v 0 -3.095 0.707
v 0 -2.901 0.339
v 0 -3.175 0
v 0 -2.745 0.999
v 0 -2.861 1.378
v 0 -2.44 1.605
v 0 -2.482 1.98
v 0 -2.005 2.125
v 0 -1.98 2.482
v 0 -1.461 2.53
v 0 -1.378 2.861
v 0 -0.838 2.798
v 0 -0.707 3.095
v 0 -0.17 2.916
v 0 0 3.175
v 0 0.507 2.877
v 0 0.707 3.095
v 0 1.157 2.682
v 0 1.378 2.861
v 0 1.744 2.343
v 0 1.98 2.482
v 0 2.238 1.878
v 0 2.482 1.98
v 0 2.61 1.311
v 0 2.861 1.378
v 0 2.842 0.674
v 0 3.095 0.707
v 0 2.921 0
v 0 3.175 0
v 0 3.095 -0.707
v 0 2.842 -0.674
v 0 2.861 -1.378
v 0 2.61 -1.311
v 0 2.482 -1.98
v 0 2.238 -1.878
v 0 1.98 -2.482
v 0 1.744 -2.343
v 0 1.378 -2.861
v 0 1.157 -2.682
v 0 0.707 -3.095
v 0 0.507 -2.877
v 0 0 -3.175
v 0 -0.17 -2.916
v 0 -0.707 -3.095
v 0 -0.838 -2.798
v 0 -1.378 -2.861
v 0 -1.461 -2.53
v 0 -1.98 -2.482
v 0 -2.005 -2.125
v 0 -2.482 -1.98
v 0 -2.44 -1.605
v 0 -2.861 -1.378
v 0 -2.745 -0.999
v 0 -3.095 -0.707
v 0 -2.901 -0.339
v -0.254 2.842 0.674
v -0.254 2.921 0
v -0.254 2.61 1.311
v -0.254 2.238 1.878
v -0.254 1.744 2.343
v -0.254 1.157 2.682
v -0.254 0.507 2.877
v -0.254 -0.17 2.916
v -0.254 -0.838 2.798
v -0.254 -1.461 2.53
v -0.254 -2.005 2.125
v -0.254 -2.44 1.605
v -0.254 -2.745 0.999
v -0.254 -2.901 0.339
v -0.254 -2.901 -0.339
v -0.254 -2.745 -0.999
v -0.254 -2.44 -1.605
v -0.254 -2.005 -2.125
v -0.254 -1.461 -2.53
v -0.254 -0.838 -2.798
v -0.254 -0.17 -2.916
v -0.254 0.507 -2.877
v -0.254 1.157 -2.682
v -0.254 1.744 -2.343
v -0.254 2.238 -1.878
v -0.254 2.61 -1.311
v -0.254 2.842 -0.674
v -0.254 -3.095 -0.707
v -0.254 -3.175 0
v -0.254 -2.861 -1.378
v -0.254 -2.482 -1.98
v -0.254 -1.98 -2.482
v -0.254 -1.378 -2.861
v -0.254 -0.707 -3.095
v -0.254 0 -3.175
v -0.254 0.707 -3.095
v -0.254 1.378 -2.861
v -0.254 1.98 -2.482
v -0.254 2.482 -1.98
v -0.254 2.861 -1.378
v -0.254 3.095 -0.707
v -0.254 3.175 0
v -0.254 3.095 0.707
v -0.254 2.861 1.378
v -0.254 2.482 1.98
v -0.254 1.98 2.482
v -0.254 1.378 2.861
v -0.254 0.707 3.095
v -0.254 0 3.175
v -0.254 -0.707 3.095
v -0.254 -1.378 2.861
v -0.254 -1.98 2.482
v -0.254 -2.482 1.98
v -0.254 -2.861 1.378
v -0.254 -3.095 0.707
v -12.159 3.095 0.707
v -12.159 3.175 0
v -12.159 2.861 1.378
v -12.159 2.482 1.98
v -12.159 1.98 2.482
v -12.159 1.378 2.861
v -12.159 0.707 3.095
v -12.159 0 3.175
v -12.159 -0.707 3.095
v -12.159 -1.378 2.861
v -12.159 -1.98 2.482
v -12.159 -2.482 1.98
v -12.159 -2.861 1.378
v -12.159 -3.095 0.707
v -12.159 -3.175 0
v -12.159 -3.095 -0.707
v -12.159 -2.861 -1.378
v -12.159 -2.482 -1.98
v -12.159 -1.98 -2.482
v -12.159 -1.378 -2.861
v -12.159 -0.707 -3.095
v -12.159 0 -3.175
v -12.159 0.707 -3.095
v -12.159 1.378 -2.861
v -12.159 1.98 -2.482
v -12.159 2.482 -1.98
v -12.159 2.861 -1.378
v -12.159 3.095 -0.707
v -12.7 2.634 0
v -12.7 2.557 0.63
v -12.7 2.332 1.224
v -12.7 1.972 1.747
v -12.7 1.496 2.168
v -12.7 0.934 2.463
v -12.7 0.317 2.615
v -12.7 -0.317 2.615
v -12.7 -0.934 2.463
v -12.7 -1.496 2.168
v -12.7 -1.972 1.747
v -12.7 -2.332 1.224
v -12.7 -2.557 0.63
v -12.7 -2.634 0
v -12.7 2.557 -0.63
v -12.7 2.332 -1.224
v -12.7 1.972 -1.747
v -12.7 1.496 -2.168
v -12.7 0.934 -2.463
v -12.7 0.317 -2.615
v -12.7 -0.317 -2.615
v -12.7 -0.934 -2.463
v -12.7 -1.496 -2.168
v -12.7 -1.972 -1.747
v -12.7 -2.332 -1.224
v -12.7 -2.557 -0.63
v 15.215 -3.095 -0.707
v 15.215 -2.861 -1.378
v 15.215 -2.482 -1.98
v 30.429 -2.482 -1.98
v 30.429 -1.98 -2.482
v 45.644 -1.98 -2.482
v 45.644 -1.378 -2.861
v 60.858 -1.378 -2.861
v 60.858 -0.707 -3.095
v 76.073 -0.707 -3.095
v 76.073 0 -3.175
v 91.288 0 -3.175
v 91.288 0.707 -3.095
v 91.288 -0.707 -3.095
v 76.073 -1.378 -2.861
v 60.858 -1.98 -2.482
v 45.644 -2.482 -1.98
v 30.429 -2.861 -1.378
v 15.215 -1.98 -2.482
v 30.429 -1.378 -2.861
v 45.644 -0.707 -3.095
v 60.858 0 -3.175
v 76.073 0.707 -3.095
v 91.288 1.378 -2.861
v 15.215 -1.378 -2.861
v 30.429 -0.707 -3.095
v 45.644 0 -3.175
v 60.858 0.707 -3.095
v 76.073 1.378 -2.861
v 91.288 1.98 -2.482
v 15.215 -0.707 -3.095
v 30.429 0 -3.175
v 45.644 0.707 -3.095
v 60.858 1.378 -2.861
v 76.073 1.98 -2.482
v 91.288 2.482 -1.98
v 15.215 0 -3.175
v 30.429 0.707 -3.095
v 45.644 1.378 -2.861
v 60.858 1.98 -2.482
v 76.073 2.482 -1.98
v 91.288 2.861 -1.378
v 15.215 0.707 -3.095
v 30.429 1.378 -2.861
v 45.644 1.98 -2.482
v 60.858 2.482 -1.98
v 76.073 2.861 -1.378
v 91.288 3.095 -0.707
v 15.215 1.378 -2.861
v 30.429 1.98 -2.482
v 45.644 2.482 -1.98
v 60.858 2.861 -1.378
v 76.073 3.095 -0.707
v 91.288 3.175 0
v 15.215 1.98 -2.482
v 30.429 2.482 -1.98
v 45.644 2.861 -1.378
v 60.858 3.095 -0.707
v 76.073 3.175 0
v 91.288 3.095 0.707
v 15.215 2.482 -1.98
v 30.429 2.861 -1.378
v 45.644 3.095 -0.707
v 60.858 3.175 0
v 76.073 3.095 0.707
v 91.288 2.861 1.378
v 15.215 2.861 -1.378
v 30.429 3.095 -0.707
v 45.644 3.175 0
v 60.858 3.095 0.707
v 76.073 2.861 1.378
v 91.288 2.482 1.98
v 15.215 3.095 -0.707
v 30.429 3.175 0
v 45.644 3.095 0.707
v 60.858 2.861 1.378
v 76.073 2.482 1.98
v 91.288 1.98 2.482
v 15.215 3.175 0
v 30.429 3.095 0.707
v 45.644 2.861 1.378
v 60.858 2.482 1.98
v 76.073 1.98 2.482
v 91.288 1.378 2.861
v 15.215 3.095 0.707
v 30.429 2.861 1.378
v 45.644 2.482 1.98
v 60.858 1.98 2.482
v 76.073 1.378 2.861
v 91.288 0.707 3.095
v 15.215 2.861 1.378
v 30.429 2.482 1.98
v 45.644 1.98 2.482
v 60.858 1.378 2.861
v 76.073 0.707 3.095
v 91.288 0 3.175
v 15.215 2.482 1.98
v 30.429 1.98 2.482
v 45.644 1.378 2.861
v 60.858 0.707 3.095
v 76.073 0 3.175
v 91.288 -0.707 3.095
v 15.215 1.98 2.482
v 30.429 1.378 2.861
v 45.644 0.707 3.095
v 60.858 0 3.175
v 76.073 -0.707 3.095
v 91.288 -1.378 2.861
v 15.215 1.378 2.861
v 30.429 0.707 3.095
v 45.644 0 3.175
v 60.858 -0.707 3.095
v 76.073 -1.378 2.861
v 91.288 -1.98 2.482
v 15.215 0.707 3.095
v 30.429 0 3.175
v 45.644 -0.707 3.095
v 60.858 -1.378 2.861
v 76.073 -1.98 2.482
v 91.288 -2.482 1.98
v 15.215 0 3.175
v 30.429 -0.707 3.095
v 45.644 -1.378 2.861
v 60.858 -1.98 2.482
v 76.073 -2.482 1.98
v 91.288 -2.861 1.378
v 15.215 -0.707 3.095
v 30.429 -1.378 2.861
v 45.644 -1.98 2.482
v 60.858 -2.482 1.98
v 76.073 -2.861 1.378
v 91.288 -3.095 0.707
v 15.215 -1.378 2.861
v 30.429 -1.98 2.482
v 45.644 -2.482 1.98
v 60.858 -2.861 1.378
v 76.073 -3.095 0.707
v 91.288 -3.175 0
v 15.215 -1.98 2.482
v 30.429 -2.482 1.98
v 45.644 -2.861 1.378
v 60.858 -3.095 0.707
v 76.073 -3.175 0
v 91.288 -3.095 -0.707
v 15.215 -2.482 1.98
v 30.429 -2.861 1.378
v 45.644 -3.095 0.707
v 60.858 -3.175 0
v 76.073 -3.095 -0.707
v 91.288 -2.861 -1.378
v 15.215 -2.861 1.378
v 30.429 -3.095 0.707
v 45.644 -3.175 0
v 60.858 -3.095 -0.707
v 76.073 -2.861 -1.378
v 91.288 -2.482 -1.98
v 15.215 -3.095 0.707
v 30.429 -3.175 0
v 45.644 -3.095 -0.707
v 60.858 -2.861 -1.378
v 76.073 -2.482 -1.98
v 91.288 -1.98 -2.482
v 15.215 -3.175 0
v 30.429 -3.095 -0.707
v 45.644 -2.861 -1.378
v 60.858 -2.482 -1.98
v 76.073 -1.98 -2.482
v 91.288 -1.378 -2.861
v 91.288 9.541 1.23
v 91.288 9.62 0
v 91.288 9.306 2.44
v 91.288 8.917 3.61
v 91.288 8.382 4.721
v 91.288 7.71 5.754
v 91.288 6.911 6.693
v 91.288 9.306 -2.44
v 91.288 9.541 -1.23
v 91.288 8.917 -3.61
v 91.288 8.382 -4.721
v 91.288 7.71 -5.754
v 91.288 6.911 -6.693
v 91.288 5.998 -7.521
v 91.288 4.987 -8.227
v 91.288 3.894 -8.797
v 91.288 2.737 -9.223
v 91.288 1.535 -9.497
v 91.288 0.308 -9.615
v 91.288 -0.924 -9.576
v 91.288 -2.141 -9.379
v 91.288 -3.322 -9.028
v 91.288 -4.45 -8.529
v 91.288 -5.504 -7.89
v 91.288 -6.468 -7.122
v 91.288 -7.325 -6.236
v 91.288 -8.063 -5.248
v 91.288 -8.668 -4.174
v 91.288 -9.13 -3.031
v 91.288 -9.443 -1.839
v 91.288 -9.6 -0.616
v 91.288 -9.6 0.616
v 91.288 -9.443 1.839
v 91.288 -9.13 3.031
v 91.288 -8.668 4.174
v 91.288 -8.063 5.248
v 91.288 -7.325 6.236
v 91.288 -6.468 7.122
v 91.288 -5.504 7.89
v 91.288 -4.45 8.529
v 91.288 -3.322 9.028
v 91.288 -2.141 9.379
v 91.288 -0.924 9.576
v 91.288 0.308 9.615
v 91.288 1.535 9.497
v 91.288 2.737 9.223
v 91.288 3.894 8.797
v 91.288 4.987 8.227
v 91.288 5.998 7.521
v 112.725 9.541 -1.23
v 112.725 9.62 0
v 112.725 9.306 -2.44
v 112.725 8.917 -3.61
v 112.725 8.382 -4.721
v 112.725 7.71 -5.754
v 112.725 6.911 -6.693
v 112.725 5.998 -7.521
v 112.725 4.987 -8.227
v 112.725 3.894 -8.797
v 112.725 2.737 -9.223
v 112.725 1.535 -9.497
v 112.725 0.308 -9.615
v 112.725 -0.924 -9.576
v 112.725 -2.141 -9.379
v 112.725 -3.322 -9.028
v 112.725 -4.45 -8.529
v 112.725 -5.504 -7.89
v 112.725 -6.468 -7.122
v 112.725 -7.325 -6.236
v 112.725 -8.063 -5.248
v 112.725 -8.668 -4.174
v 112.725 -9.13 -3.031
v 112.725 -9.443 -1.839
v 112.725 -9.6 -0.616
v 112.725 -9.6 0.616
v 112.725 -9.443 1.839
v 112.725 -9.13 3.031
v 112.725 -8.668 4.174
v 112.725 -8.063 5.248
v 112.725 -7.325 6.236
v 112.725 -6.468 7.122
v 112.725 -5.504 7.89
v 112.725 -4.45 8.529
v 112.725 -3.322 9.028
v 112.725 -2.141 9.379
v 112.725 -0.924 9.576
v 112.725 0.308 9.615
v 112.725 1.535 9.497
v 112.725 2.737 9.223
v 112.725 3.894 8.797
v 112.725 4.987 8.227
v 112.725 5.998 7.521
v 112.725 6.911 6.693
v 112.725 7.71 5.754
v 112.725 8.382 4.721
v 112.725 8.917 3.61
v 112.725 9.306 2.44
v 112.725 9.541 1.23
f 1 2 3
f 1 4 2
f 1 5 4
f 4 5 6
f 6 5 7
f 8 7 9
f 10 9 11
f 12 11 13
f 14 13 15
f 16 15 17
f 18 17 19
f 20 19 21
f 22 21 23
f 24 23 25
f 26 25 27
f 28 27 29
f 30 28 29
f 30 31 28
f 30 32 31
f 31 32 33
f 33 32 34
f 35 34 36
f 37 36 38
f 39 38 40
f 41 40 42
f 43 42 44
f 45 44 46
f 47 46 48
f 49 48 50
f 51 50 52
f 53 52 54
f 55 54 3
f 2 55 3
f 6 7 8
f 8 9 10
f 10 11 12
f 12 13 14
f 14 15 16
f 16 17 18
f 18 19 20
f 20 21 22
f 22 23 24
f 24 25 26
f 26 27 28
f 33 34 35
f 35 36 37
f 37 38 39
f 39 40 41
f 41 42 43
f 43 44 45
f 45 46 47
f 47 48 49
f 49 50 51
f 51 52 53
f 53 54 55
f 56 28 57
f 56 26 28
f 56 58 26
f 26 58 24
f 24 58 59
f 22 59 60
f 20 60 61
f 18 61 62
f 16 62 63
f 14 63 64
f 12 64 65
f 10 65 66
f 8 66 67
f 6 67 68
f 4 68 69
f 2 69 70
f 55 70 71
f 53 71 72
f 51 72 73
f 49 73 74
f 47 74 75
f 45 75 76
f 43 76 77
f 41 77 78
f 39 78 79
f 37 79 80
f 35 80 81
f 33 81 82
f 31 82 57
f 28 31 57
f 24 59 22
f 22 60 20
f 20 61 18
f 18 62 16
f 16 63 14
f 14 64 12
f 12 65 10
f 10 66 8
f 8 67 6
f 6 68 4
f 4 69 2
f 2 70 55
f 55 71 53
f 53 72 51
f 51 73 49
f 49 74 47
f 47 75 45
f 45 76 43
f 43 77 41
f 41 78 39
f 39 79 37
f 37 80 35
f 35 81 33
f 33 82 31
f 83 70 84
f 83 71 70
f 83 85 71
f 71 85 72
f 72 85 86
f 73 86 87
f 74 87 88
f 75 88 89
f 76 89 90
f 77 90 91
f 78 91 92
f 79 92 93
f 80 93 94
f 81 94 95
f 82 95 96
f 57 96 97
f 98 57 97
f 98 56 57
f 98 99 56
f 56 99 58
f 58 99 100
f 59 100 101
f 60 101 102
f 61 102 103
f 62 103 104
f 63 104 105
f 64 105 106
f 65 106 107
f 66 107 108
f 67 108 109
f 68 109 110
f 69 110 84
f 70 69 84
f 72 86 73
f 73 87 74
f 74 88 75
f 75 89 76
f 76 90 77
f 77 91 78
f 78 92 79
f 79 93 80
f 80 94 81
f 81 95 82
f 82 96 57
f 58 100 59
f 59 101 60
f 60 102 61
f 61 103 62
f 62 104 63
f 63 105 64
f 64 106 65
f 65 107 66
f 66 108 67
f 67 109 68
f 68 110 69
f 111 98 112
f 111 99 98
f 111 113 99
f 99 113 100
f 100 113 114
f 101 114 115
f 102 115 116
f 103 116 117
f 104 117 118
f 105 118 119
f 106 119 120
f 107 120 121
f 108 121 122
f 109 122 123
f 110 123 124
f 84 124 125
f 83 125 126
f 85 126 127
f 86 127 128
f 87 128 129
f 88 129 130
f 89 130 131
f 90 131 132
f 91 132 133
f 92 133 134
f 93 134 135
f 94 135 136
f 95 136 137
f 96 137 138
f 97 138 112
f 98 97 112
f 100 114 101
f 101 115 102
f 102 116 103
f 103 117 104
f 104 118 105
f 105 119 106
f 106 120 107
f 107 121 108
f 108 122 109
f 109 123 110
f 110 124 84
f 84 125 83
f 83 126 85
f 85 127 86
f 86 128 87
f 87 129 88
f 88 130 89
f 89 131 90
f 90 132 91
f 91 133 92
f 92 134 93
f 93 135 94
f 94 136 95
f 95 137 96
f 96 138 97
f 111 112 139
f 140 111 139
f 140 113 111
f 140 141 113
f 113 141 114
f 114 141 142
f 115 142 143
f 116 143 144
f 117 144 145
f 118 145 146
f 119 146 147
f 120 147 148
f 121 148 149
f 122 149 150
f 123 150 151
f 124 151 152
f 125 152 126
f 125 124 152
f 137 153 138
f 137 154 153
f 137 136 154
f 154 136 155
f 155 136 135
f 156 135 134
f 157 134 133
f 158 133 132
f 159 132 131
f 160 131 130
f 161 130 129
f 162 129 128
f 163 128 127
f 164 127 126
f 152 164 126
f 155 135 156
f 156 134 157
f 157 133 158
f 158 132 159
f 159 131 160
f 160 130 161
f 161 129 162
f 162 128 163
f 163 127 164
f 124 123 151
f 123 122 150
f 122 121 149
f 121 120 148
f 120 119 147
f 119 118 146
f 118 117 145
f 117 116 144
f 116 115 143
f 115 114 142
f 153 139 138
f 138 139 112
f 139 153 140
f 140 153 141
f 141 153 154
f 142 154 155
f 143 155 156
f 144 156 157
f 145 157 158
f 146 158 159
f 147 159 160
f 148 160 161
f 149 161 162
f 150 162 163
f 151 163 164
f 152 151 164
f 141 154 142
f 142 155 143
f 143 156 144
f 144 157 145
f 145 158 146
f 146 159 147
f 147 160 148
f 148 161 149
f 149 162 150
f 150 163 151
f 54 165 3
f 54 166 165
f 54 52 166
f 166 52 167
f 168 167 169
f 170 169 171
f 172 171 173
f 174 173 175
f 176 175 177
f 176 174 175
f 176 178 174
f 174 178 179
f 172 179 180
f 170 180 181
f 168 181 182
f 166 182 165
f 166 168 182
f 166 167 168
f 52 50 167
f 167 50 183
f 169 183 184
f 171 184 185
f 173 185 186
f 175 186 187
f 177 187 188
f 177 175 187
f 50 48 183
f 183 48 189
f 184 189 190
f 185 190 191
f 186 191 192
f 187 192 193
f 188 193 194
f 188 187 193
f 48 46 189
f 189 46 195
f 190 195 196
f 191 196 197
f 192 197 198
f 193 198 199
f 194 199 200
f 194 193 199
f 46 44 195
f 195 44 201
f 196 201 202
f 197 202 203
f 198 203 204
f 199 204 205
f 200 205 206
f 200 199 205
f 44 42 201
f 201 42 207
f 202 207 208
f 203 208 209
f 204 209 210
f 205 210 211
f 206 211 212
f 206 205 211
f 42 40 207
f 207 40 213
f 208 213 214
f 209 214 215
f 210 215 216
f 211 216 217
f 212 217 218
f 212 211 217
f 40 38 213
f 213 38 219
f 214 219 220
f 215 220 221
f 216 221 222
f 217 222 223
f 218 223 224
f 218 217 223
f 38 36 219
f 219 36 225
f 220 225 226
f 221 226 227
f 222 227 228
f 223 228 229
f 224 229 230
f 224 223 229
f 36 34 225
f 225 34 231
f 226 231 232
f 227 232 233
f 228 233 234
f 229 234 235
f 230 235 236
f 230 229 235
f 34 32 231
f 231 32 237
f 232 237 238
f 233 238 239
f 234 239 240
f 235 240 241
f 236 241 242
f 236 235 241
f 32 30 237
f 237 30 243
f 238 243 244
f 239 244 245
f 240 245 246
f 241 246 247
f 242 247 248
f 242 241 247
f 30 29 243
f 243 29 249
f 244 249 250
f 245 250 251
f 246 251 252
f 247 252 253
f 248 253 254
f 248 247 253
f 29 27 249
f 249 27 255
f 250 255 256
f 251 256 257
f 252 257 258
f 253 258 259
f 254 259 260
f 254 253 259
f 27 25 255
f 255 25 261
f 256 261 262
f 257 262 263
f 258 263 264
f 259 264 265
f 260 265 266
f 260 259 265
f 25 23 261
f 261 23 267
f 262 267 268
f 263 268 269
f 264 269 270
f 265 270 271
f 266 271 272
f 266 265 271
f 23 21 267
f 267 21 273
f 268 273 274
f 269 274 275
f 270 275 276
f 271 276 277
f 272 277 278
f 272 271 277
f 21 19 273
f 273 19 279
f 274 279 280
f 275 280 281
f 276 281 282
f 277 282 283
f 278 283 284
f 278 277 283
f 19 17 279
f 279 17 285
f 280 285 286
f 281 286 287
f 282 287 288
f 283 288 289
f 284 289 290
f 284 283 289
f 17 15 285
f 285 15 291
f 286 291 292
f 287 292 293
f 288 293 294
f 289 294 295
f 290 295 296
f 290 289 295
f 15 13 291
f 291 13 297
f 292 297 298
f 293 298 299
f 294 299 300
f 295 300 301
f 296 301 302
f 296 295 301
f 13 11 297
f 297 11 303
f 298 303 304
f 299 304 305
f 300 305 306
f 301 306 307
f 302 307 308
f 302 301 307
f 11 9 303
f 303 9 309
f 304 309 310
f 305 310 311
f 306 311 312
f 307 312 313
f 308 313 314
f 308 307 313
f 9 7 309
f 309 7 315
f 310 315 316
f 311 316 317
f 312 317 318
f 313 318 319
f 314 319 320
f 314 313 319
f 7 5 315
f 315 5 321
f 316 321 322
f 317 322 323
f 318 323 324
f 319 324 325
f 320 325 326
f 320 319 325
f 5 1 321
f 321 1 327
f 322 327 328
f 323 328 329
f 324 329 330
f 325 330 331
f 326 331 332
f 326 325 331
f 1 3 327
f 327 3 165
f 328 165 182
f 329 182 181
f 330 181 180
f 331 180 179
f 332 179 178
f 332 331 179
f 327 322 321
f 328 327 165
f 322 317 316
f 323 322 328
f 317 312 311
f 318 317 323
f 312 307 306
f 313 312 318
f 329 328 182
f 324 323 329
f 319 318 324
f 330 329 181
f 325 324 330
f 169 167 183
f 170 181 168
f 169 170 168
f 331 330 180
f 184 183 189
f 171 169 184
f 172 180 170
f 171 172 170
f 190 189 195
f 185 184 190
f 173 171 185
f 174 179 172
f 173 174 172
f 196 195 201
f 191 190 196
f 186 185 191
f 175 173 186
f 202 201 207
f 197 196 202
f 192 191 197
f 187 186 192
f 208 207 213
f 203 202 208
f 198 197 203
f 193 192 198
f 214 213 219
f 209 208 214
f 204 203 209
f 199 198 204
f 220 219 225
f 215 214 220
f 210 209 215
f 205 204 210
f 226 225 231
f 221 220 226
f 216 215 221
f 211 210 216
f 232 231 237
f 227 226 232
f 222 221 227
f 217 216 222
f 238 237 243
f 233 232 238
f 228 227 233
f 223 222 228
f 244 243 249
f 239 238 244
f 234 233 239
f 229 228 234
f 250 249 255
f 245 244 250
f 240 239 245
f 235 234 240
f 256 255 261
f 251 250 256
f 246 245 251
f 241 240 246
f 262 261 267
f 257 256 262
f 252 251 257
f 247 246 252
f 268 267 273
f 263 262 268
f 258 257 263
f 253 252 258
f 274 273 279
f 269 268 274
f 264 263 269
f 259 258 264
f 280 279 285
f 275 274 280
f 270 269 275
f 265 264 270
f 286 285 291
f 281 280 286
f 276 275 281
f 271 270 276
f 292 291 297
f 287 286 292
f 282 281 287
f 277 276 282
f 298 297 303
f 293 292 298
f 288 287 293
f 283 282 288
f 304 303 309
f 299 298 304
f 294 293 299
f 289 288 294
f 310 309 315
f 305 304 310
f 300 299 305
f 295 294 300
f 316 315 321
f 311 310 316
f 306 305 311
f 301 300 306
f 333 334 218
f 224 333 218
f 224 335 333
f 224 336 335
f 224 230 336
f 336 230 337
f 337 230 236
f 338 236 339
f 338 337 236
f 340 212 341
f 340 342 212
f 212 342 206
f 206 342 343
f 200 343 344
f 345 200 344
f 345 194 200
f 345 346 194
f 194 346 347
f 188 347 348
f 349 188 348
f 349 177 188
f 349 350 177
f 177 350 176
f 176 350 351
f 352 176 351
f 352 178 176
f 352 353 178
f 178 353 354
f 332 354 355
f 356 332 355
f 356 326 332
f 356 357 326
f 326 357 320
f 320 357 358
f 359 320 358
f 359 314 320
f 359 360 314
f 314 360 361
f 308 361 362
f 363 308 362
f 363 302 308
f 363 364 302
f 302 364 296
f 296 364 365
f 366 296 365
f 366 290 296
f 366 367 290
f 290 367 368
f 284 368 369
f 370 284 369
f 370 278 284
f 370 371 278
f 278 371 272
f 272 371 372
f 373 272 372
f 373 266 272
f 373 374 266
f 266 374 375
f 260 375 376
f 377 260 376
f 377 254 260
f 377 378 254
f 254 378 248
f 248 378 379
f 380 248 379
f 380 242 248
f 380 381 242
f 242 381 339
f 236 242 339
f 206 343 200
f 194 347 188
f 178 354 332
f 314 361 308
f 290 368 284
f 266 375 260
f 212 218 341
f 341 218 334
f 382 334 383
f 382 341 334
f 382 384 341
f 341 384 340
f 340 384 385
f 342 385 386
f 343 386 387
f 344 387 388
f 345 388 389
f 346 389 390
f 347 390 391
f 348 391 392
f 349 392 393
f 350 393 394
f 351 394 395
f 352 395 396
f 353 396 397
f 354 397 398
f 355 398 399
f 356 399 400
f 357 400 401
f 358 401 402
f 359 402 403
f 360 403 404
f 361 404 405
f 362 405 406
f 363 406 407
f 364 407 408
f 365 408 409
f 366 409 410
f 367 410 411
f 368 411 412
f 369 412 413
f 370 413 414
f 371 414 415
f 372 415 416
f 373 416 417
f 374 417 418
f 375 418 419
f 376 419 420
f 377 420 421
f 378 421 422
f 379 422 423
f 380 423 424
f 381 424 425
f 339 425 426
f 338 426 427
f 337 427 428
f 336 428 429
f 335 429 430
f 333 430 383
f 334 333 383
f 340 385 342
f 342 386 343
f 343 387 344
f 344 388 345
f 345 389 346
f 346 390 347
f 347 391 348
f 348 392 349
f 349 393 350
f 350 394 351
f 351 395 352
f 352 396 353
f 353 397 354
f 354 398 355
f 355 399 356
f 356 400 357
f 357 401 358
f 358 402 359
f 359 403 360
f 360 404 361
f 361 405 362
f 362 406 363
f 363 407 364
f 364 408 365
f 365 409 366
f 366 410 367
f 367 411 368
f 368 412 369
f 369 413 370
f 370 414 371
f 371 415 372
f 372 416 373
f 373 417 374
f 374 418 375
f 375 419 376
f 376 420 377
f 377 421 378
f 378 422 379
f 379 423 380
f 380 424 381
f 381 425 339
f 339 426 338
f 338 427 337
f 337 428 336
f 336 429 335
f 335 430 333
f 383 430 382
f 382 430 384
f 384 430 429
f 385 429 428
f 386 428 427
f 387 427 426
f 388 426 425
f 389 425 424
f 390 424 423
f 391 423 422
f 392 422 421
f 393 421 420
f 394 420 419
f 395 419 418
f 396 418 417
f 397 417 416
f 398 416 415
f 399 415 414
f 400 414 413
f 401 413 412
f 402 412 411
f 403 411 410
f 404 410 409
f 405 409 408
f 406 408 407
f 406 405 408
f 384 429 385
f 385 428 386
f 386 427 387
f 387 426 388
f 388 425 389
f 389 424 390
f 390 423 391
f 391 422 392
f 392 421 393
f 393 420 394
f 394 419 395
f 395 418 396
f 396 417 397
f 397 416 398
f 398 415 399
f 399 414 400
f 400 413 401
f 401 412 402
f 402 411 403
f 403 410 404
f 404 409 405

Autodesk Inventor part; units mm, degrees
sketch "Sketch_1" plane through (0, 0, 0) normal (0, 0, 1) x (1, 0, 0)
  line L0 (112.7252, 0) -> (0, 0)
  line L1 (0, 0) -> (0, 3.175)
  line L2 (0, 3.175) -> (91.2876, 3.175)
  line L3 (91.2876, 3.175) -> (91.2876, 9.6203)
  line L4 (91.2876, 9.6203) -> (112.7252, 9.6203)
  line L5 (112.7252, 9.6203) -> (112.7252, 0)
  line L6 (112.7252, 0) -> (0, 0)
revolve "Revolution1" add sketch "Sketch_1" angle 360 about axis through (112.7252, 0, 0) along (1, 0, 0)
sketch "Sketch_3" plane through (0, 0, 0) normal (0, 0, 1) x (1, 0, 0)
  line L0 (0, 0) -> (-12.7, 0)
  line L1 (-12.7, 0) -> (-12.7, 2.634)
  line L2 (-12.7, 2.634) -> (-12.159, 3.175)
  line L3 (-12.159, 3.175) -> (0, 3.175)
  line L4 (0, 3.175) -> (0, 0)
  line L5 (0, 0) -> (-12.7, 0)
revolve "Revolution2" add sketch "Sketch_3" angle 360 about axis through (0, 0, 0) along (1, 0, 0)
thread "Thread1" size "1/4-28 UNF" class "3A" standard "ANSI Unified Screw Threads" length 12.7 offset 91.2876
sketch "Sketch_30" plane through (0, 0, 0) normal (0, 0, 1) x (1, 0, 0)
  line L0 (0, 0) -> (-0.254, 0)
  line L1 (-0.254, 3.429) -> (-0.254, 2.921)
  line L2 (-0.254, 2.921) -> (0, 2.921)
  line L3 (0, 2.921) -> (0, 3.429)
  line L4 (0, 3.429) -> (-0.254, 3.429)
revolve "Revolution3" cut sketch "Sketch_30" angle 360 about axis through (0, 0, 0) along (1, 0, 0)
ref_plane "rod_cp_XY" through (0, 0, 0) normal (1, 0, 0) x (0, 0, -1)
ref_plane "rod_cp_YZ" through (0, 0, 0) normal (0, 0, -1) x (0, 1, 0)
ref_plane "rod_cp_ZX" through (0, 0, 0) normal (0, 1, 0) x (1, 0, 0)
ref_plane "to_rod_clevis_XY" through (-12.7, 0, 0) normal (1, 0, 0) x (0, 0, -1)
ref_plane "to_rod_clevis_YZ" through (-12.7, 0, 0) normal (0, 0, -1) x (0, 1, 0)
ref_plane "to_rod_clevis_ZX" through (-12.7, 0, 0) normal (0, 1, 0) x (1, 0, 0)
ref_plane "rl2_XY" through (0, 0, 0) normal (1, 0, 0) x (0, 0, -1)
ref_plane "rl2_YZ" through (0, 0, 0) normal (0, 0, -1) x (0, 1, 0)
ref_plane "rl2_ZX" through (0, 0, 0) normal (0, 1, 0) x (1, 0, 0)
ref_plane "rl1_XY" through (-12.7, 0, 0) normal (1, 0, 0) x (0, 0, -1)
ref_plane "rl1_YZ" through (-12.7, 0, 0) normal (0, 0, -1) x (0, 1, 0)
ref_plane "rl1_ZX" through (-12.7, 0, 0) normal (0, 1, 0) x (1, 0, 0)
ref_plane "thd1_XY" through (-12.7, 3.175, 0) normal (1, 0, 0) x (0, 0, -1)
ref_plane "thd1_YZ" through (-12.7, 3.175, 0) normal (0, 0, -1) x (0, 1, 0)
ref_plane "thd1_ZX" through (-12.7, 3.175, 0) normal (0, 1, 0) x (1, 0, 0)
ref_plane "thd2_XY" through (-12.7, -3.175, 0) normal (1, 0, 0) x (0, 0, -1)
ref_plane "thd2_YZ" through (-12.7, -3.175, 0) normal (0, 0, -1) x (0, 1, 0)
ref_plane "thd2_ZX" through (-12.7, -3.175, 0) normal (0, 1, 0) x (1, 0, 0)
ref_plane "dia1_XY" through (0, 3.175, 0) normal (1, 0, 0) x (0, 0, -1)
ref_plane "dia1_YZ" through (0, 3.175, 0) normal (0, 0, -1) x (0, 1, 0)
ref_plane "dia1_ZX" through (0, 3.175, 0) normal (0, 1, 0) x (1, 0, 0)
ref_plane "dia2_XY" through (0, -3.175, 0) normal (1, 0, 0) x (0, 0, -1)
ref_plane "dia2_YZ" through (0, -3.175, 0) normal (0, 0, -1) x (0, 1, 0)
ref_plane "dia2_ZX" through (0, -3.175, 0) normal (0, 1, 0) x (1, 0, 0)
ref_plane "hh1_XY" through (142.8496, 0, 0) normal (0, 0, 1) x (1, 0, 0)
ref_plane "hh1_YZ" through (142.8496, 0, 0) normal (1, 0, 0) x (0, 1, 0)
ref_plane "hh1_ZX" through (142.8496, 0, 0) normal (0, 1, 0) x (0, 0, 1)
ref_plane "hh2_XY" through (149.2504, 0, 0) normal (0, 0, 1) x (1, 0, 0)
ref_plane "hh2_YZ" through (149.2504, 0, 0) normal (1, 0, 0) x (0, 1, 0)
ref_plane "hh2_ZX" through (149.2504, 0, 0) normal (0, 1, 0) x (0, 0, 1)
ref_plane "dia12_XY" through (0, 0, 10.9537) normal (1, 0, 0) x (0, 0, -1)
ref_plane "dia12_YZ" through (0, 0, 10.9537) normal (0, 0, -1) x (0, 1, 0)
ref_plane "dia12_ZX" through (0, 0, 10.9537) normal (0, 1, 0) x (1, 0, 0)
ref_plane "dia22_XY" through (0, 0, -10.9537) normal (1, 0, 0) x (0, 0, -1)
ref_plane "dia22_YZ" through (0, 0, -10.9537) normal (0, 0, -1) x (0, 1, 0)
ref_plane "dia22_ZX" through (0, 0, -10.9537) normal (0, 1, 0) x (1, 0, 0)
properties part number "042-DXP0_rod"
